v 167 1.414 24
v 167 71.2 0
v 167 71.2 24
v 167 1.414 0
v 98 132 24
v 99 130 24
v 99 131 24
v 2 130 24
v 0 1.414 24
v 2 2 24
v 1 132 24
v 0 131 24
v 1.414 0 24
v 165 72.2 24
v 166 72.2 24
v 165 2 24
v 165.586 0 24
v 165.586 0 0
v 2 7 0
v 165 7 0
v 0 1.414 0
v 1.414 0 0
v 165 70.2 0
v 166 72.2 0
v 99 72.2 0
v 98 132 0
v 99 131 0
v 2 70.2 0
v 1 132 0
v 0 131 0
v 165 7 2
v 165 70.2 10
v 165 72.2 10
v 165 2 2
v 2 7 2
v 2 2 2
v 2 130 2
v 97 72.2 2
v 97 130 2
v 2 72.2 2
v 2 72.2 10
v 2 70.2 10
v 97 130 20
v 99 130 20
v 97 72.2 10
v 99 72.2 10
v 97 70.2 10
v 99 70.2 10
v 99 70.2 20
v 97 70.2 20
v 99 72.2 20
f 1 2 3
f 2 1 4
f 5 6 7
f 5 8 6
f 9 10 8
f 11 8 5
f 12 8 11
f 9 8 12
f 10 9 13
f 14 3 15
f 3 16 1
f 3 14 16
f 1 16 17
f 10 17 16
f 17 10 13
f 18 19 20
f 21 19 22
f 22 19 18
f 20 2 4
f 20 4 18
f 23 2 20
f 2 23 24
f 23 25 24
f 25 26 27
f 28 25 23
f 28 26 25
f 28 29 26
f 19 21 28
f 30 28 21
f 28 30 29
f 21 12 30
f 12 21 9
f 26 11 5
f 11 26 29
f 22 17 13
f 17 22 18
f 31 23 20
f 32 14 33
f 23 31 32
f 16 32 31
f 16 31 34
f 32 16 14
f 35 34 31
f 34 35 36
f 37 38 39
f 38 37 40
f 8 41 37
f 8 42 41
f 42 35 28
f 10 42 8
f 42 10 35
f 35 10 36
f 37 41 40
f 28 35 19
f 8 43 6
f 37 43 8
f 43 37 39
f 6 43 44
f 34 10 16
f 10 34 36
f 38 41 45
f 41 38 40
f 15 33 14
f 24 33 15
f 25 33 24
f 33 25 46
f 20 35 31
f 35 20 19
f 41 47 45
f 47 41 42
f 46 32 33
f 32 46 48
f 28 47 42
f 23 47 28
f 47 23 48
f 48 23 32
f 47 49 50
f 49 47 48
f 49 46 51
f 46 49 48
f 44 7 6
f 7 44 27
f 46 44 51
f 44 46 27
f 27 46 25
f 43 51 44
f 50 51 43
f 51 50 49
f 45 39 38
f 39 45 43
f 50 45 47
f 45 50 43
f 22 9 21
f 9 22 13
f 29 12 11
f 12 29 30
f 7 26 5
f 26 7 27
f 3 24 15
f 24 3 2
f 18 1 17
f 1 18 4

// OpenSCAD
/*

    CP4-5_partial_case.scad is the code to generate a dust cover for
    Astro-Physics CP4 and CP5 controllers.
    
    Copyright (C) 2023  C.Y. Tan
    Contact: cytan299@yahoo.com

    This file is part of the CP4 and CP5 dust cover distribution.

    CP4-5_partial_case is free software: you can redistribute it
    and/or modify it under the terms of the GNU General Public License
    as published by the Free Software Foundation, either version 3 of
    the License, or (at your option) any later version.

    CP4-5_partial_case is distributed in the hope that it will be
    useful, but WITHOUT ANY WARRANTY; without even the implied
    warranty of MERCHANTABILITY or FITNESS FOR A PARTICULAR PURPOSE.
    See the GNU General Public License for more details.

    You should have received a copy of the GNU General Public License
    along with CP4-5_partial_case.  If not, see
    <http://www.gnu.org/licenses/>.

*/

$fn=100;

// inside dimensions of box
IBox_len_x = 163; // mm
IBox_len_y = 128; // mm
IBox_len_z = 20; //mm

// outside dimensions of box

Box_wall_t = 2; //mm, wall thickness

Box_len_x = IBox_len_x + 2*Box_wall_t; //mm
Box_len_y = IBox_len_y + 2*Box_wall_t; //mm
Box_len_z = IBox_len_z + 2*Box_wall_t; //mm

// partition wall dimensions
Box_partition_len_y = 68.2 + Box_wall_t; //mm
Box_partition_len_z = 10; //mm

// partition wall that separates the motor and encoder cables from the other sockets
Wall_partition_x = 95 + Box_wall_t; //mm
Wall_partition_len_y = Box_len_y;
Wall_partition_len_z = IBox_len_z;

// lips
Top_lip = 5; //mm

// corners

Corner_len_x = 10;
Corner_len_y = 1;
Corner_len_z = 60;

module make_box()
{
  difference(){
    difference(){
      cube([Box_len_x, Box_len_y, Box_len_z], center= false);
      translate([Box_wall_t, Box_wall_t, Box_wall_t])
        cube([IBox_len_x , IBox_len_y , IBox_len_z + 2*Box_wall_t], center=false);
    }
    // make the upper clearance hole
    translate([Box_wall_t, Box_wall_t + Top_lip, -IBox_len_z/2])    
      cube([IBox_len_x, Box_partition_len_y - Top_lip, IBox_len_z], center=false);
  }
}

module make_partition()
{
  translate([0, Box_partition_len_y, 0])
    cube([Box_len_x, Box_wall_t, Box_partition_len_z], center=false);
}

module make_wall()
{
  translate([Wall_partition_x, Box_partition_len_y,0])
    cube([Box_wall_t, Box_len_y - Box_partition_len_y, Wall_partition_len_z], center=false);
}

module make_flat_corners()
{
  // origin
  rotate([0,0,-45]){
  translate([-Corner_len_x/2, 0, -Corner_len_z/2])
    cube([Corner_len_x, Corner_len_y, Corner_len_z], center=false);
  }

  // top left corner
  translate([0, Box_len_y - Corner_len_y, 0]){  
    rotate([0,0,45]){
    translate([-Corner_len_x/2, 0, -Corner_len_z/2])
      cube([Corner_len_x, Corner_len_y, Corner_len_z], center=false);
    }
  }

 // top right corner
  translate([Wall_partition_x + Box_wall_t, Box_len_y - Box_wall_t/2 , 0]){  
    rotate([0,0,-45]){
    translate([-Corner_len_x/2, 0, -Corner_len_z/2])
      cube([Corner_len_x, Corner_len_y + Box_wall_t, Corner_len_z], center=false);
    }
  }  

  // middle right corner
  translate([Box_len_x - Box_wall_t, Box_partition_len_y + 1.5*Box_wall_t, 0]){  
    rotate([0,0,-45]){
    translate([-Corner_len_x/2, 0, -Corner_len_z/2])
      cube([Corner_len_x, Corner_len_y + Box_wall_t, Corner_len_z], center=false);
    }
  }

  
  // bottom right corner
  translate([Box_len_x, 0, 0]){  
    rotate([0,0,45]){
    translate([-Corner_len_x/2, 0, -Corner_len_z/2])
      cube([Corner_len_x, Corner_len_y, Corner_len_z], center=false);
    }
  }  
}

module make_cable_space()
{
  // the space made by  the cube is a little bigger so that I completely remove the unwanted walls
  translate([Wall_partition_x + Box_wall_t, Box_partition_len_y + Box_wall_t,-Box_len_z/2])
    cube([Box_len_x - Wall_partition_x, Box_len_y - Box_partition_len_y, 2*Box_len_z], center=false);
}


union(){
  difference(){ 
    difference(){
      union(){
        make_box();
	make_partition();
        make_wall();	
      }
      make_flat_corners();
    }
    make_cable_space();
  }  
 
}
